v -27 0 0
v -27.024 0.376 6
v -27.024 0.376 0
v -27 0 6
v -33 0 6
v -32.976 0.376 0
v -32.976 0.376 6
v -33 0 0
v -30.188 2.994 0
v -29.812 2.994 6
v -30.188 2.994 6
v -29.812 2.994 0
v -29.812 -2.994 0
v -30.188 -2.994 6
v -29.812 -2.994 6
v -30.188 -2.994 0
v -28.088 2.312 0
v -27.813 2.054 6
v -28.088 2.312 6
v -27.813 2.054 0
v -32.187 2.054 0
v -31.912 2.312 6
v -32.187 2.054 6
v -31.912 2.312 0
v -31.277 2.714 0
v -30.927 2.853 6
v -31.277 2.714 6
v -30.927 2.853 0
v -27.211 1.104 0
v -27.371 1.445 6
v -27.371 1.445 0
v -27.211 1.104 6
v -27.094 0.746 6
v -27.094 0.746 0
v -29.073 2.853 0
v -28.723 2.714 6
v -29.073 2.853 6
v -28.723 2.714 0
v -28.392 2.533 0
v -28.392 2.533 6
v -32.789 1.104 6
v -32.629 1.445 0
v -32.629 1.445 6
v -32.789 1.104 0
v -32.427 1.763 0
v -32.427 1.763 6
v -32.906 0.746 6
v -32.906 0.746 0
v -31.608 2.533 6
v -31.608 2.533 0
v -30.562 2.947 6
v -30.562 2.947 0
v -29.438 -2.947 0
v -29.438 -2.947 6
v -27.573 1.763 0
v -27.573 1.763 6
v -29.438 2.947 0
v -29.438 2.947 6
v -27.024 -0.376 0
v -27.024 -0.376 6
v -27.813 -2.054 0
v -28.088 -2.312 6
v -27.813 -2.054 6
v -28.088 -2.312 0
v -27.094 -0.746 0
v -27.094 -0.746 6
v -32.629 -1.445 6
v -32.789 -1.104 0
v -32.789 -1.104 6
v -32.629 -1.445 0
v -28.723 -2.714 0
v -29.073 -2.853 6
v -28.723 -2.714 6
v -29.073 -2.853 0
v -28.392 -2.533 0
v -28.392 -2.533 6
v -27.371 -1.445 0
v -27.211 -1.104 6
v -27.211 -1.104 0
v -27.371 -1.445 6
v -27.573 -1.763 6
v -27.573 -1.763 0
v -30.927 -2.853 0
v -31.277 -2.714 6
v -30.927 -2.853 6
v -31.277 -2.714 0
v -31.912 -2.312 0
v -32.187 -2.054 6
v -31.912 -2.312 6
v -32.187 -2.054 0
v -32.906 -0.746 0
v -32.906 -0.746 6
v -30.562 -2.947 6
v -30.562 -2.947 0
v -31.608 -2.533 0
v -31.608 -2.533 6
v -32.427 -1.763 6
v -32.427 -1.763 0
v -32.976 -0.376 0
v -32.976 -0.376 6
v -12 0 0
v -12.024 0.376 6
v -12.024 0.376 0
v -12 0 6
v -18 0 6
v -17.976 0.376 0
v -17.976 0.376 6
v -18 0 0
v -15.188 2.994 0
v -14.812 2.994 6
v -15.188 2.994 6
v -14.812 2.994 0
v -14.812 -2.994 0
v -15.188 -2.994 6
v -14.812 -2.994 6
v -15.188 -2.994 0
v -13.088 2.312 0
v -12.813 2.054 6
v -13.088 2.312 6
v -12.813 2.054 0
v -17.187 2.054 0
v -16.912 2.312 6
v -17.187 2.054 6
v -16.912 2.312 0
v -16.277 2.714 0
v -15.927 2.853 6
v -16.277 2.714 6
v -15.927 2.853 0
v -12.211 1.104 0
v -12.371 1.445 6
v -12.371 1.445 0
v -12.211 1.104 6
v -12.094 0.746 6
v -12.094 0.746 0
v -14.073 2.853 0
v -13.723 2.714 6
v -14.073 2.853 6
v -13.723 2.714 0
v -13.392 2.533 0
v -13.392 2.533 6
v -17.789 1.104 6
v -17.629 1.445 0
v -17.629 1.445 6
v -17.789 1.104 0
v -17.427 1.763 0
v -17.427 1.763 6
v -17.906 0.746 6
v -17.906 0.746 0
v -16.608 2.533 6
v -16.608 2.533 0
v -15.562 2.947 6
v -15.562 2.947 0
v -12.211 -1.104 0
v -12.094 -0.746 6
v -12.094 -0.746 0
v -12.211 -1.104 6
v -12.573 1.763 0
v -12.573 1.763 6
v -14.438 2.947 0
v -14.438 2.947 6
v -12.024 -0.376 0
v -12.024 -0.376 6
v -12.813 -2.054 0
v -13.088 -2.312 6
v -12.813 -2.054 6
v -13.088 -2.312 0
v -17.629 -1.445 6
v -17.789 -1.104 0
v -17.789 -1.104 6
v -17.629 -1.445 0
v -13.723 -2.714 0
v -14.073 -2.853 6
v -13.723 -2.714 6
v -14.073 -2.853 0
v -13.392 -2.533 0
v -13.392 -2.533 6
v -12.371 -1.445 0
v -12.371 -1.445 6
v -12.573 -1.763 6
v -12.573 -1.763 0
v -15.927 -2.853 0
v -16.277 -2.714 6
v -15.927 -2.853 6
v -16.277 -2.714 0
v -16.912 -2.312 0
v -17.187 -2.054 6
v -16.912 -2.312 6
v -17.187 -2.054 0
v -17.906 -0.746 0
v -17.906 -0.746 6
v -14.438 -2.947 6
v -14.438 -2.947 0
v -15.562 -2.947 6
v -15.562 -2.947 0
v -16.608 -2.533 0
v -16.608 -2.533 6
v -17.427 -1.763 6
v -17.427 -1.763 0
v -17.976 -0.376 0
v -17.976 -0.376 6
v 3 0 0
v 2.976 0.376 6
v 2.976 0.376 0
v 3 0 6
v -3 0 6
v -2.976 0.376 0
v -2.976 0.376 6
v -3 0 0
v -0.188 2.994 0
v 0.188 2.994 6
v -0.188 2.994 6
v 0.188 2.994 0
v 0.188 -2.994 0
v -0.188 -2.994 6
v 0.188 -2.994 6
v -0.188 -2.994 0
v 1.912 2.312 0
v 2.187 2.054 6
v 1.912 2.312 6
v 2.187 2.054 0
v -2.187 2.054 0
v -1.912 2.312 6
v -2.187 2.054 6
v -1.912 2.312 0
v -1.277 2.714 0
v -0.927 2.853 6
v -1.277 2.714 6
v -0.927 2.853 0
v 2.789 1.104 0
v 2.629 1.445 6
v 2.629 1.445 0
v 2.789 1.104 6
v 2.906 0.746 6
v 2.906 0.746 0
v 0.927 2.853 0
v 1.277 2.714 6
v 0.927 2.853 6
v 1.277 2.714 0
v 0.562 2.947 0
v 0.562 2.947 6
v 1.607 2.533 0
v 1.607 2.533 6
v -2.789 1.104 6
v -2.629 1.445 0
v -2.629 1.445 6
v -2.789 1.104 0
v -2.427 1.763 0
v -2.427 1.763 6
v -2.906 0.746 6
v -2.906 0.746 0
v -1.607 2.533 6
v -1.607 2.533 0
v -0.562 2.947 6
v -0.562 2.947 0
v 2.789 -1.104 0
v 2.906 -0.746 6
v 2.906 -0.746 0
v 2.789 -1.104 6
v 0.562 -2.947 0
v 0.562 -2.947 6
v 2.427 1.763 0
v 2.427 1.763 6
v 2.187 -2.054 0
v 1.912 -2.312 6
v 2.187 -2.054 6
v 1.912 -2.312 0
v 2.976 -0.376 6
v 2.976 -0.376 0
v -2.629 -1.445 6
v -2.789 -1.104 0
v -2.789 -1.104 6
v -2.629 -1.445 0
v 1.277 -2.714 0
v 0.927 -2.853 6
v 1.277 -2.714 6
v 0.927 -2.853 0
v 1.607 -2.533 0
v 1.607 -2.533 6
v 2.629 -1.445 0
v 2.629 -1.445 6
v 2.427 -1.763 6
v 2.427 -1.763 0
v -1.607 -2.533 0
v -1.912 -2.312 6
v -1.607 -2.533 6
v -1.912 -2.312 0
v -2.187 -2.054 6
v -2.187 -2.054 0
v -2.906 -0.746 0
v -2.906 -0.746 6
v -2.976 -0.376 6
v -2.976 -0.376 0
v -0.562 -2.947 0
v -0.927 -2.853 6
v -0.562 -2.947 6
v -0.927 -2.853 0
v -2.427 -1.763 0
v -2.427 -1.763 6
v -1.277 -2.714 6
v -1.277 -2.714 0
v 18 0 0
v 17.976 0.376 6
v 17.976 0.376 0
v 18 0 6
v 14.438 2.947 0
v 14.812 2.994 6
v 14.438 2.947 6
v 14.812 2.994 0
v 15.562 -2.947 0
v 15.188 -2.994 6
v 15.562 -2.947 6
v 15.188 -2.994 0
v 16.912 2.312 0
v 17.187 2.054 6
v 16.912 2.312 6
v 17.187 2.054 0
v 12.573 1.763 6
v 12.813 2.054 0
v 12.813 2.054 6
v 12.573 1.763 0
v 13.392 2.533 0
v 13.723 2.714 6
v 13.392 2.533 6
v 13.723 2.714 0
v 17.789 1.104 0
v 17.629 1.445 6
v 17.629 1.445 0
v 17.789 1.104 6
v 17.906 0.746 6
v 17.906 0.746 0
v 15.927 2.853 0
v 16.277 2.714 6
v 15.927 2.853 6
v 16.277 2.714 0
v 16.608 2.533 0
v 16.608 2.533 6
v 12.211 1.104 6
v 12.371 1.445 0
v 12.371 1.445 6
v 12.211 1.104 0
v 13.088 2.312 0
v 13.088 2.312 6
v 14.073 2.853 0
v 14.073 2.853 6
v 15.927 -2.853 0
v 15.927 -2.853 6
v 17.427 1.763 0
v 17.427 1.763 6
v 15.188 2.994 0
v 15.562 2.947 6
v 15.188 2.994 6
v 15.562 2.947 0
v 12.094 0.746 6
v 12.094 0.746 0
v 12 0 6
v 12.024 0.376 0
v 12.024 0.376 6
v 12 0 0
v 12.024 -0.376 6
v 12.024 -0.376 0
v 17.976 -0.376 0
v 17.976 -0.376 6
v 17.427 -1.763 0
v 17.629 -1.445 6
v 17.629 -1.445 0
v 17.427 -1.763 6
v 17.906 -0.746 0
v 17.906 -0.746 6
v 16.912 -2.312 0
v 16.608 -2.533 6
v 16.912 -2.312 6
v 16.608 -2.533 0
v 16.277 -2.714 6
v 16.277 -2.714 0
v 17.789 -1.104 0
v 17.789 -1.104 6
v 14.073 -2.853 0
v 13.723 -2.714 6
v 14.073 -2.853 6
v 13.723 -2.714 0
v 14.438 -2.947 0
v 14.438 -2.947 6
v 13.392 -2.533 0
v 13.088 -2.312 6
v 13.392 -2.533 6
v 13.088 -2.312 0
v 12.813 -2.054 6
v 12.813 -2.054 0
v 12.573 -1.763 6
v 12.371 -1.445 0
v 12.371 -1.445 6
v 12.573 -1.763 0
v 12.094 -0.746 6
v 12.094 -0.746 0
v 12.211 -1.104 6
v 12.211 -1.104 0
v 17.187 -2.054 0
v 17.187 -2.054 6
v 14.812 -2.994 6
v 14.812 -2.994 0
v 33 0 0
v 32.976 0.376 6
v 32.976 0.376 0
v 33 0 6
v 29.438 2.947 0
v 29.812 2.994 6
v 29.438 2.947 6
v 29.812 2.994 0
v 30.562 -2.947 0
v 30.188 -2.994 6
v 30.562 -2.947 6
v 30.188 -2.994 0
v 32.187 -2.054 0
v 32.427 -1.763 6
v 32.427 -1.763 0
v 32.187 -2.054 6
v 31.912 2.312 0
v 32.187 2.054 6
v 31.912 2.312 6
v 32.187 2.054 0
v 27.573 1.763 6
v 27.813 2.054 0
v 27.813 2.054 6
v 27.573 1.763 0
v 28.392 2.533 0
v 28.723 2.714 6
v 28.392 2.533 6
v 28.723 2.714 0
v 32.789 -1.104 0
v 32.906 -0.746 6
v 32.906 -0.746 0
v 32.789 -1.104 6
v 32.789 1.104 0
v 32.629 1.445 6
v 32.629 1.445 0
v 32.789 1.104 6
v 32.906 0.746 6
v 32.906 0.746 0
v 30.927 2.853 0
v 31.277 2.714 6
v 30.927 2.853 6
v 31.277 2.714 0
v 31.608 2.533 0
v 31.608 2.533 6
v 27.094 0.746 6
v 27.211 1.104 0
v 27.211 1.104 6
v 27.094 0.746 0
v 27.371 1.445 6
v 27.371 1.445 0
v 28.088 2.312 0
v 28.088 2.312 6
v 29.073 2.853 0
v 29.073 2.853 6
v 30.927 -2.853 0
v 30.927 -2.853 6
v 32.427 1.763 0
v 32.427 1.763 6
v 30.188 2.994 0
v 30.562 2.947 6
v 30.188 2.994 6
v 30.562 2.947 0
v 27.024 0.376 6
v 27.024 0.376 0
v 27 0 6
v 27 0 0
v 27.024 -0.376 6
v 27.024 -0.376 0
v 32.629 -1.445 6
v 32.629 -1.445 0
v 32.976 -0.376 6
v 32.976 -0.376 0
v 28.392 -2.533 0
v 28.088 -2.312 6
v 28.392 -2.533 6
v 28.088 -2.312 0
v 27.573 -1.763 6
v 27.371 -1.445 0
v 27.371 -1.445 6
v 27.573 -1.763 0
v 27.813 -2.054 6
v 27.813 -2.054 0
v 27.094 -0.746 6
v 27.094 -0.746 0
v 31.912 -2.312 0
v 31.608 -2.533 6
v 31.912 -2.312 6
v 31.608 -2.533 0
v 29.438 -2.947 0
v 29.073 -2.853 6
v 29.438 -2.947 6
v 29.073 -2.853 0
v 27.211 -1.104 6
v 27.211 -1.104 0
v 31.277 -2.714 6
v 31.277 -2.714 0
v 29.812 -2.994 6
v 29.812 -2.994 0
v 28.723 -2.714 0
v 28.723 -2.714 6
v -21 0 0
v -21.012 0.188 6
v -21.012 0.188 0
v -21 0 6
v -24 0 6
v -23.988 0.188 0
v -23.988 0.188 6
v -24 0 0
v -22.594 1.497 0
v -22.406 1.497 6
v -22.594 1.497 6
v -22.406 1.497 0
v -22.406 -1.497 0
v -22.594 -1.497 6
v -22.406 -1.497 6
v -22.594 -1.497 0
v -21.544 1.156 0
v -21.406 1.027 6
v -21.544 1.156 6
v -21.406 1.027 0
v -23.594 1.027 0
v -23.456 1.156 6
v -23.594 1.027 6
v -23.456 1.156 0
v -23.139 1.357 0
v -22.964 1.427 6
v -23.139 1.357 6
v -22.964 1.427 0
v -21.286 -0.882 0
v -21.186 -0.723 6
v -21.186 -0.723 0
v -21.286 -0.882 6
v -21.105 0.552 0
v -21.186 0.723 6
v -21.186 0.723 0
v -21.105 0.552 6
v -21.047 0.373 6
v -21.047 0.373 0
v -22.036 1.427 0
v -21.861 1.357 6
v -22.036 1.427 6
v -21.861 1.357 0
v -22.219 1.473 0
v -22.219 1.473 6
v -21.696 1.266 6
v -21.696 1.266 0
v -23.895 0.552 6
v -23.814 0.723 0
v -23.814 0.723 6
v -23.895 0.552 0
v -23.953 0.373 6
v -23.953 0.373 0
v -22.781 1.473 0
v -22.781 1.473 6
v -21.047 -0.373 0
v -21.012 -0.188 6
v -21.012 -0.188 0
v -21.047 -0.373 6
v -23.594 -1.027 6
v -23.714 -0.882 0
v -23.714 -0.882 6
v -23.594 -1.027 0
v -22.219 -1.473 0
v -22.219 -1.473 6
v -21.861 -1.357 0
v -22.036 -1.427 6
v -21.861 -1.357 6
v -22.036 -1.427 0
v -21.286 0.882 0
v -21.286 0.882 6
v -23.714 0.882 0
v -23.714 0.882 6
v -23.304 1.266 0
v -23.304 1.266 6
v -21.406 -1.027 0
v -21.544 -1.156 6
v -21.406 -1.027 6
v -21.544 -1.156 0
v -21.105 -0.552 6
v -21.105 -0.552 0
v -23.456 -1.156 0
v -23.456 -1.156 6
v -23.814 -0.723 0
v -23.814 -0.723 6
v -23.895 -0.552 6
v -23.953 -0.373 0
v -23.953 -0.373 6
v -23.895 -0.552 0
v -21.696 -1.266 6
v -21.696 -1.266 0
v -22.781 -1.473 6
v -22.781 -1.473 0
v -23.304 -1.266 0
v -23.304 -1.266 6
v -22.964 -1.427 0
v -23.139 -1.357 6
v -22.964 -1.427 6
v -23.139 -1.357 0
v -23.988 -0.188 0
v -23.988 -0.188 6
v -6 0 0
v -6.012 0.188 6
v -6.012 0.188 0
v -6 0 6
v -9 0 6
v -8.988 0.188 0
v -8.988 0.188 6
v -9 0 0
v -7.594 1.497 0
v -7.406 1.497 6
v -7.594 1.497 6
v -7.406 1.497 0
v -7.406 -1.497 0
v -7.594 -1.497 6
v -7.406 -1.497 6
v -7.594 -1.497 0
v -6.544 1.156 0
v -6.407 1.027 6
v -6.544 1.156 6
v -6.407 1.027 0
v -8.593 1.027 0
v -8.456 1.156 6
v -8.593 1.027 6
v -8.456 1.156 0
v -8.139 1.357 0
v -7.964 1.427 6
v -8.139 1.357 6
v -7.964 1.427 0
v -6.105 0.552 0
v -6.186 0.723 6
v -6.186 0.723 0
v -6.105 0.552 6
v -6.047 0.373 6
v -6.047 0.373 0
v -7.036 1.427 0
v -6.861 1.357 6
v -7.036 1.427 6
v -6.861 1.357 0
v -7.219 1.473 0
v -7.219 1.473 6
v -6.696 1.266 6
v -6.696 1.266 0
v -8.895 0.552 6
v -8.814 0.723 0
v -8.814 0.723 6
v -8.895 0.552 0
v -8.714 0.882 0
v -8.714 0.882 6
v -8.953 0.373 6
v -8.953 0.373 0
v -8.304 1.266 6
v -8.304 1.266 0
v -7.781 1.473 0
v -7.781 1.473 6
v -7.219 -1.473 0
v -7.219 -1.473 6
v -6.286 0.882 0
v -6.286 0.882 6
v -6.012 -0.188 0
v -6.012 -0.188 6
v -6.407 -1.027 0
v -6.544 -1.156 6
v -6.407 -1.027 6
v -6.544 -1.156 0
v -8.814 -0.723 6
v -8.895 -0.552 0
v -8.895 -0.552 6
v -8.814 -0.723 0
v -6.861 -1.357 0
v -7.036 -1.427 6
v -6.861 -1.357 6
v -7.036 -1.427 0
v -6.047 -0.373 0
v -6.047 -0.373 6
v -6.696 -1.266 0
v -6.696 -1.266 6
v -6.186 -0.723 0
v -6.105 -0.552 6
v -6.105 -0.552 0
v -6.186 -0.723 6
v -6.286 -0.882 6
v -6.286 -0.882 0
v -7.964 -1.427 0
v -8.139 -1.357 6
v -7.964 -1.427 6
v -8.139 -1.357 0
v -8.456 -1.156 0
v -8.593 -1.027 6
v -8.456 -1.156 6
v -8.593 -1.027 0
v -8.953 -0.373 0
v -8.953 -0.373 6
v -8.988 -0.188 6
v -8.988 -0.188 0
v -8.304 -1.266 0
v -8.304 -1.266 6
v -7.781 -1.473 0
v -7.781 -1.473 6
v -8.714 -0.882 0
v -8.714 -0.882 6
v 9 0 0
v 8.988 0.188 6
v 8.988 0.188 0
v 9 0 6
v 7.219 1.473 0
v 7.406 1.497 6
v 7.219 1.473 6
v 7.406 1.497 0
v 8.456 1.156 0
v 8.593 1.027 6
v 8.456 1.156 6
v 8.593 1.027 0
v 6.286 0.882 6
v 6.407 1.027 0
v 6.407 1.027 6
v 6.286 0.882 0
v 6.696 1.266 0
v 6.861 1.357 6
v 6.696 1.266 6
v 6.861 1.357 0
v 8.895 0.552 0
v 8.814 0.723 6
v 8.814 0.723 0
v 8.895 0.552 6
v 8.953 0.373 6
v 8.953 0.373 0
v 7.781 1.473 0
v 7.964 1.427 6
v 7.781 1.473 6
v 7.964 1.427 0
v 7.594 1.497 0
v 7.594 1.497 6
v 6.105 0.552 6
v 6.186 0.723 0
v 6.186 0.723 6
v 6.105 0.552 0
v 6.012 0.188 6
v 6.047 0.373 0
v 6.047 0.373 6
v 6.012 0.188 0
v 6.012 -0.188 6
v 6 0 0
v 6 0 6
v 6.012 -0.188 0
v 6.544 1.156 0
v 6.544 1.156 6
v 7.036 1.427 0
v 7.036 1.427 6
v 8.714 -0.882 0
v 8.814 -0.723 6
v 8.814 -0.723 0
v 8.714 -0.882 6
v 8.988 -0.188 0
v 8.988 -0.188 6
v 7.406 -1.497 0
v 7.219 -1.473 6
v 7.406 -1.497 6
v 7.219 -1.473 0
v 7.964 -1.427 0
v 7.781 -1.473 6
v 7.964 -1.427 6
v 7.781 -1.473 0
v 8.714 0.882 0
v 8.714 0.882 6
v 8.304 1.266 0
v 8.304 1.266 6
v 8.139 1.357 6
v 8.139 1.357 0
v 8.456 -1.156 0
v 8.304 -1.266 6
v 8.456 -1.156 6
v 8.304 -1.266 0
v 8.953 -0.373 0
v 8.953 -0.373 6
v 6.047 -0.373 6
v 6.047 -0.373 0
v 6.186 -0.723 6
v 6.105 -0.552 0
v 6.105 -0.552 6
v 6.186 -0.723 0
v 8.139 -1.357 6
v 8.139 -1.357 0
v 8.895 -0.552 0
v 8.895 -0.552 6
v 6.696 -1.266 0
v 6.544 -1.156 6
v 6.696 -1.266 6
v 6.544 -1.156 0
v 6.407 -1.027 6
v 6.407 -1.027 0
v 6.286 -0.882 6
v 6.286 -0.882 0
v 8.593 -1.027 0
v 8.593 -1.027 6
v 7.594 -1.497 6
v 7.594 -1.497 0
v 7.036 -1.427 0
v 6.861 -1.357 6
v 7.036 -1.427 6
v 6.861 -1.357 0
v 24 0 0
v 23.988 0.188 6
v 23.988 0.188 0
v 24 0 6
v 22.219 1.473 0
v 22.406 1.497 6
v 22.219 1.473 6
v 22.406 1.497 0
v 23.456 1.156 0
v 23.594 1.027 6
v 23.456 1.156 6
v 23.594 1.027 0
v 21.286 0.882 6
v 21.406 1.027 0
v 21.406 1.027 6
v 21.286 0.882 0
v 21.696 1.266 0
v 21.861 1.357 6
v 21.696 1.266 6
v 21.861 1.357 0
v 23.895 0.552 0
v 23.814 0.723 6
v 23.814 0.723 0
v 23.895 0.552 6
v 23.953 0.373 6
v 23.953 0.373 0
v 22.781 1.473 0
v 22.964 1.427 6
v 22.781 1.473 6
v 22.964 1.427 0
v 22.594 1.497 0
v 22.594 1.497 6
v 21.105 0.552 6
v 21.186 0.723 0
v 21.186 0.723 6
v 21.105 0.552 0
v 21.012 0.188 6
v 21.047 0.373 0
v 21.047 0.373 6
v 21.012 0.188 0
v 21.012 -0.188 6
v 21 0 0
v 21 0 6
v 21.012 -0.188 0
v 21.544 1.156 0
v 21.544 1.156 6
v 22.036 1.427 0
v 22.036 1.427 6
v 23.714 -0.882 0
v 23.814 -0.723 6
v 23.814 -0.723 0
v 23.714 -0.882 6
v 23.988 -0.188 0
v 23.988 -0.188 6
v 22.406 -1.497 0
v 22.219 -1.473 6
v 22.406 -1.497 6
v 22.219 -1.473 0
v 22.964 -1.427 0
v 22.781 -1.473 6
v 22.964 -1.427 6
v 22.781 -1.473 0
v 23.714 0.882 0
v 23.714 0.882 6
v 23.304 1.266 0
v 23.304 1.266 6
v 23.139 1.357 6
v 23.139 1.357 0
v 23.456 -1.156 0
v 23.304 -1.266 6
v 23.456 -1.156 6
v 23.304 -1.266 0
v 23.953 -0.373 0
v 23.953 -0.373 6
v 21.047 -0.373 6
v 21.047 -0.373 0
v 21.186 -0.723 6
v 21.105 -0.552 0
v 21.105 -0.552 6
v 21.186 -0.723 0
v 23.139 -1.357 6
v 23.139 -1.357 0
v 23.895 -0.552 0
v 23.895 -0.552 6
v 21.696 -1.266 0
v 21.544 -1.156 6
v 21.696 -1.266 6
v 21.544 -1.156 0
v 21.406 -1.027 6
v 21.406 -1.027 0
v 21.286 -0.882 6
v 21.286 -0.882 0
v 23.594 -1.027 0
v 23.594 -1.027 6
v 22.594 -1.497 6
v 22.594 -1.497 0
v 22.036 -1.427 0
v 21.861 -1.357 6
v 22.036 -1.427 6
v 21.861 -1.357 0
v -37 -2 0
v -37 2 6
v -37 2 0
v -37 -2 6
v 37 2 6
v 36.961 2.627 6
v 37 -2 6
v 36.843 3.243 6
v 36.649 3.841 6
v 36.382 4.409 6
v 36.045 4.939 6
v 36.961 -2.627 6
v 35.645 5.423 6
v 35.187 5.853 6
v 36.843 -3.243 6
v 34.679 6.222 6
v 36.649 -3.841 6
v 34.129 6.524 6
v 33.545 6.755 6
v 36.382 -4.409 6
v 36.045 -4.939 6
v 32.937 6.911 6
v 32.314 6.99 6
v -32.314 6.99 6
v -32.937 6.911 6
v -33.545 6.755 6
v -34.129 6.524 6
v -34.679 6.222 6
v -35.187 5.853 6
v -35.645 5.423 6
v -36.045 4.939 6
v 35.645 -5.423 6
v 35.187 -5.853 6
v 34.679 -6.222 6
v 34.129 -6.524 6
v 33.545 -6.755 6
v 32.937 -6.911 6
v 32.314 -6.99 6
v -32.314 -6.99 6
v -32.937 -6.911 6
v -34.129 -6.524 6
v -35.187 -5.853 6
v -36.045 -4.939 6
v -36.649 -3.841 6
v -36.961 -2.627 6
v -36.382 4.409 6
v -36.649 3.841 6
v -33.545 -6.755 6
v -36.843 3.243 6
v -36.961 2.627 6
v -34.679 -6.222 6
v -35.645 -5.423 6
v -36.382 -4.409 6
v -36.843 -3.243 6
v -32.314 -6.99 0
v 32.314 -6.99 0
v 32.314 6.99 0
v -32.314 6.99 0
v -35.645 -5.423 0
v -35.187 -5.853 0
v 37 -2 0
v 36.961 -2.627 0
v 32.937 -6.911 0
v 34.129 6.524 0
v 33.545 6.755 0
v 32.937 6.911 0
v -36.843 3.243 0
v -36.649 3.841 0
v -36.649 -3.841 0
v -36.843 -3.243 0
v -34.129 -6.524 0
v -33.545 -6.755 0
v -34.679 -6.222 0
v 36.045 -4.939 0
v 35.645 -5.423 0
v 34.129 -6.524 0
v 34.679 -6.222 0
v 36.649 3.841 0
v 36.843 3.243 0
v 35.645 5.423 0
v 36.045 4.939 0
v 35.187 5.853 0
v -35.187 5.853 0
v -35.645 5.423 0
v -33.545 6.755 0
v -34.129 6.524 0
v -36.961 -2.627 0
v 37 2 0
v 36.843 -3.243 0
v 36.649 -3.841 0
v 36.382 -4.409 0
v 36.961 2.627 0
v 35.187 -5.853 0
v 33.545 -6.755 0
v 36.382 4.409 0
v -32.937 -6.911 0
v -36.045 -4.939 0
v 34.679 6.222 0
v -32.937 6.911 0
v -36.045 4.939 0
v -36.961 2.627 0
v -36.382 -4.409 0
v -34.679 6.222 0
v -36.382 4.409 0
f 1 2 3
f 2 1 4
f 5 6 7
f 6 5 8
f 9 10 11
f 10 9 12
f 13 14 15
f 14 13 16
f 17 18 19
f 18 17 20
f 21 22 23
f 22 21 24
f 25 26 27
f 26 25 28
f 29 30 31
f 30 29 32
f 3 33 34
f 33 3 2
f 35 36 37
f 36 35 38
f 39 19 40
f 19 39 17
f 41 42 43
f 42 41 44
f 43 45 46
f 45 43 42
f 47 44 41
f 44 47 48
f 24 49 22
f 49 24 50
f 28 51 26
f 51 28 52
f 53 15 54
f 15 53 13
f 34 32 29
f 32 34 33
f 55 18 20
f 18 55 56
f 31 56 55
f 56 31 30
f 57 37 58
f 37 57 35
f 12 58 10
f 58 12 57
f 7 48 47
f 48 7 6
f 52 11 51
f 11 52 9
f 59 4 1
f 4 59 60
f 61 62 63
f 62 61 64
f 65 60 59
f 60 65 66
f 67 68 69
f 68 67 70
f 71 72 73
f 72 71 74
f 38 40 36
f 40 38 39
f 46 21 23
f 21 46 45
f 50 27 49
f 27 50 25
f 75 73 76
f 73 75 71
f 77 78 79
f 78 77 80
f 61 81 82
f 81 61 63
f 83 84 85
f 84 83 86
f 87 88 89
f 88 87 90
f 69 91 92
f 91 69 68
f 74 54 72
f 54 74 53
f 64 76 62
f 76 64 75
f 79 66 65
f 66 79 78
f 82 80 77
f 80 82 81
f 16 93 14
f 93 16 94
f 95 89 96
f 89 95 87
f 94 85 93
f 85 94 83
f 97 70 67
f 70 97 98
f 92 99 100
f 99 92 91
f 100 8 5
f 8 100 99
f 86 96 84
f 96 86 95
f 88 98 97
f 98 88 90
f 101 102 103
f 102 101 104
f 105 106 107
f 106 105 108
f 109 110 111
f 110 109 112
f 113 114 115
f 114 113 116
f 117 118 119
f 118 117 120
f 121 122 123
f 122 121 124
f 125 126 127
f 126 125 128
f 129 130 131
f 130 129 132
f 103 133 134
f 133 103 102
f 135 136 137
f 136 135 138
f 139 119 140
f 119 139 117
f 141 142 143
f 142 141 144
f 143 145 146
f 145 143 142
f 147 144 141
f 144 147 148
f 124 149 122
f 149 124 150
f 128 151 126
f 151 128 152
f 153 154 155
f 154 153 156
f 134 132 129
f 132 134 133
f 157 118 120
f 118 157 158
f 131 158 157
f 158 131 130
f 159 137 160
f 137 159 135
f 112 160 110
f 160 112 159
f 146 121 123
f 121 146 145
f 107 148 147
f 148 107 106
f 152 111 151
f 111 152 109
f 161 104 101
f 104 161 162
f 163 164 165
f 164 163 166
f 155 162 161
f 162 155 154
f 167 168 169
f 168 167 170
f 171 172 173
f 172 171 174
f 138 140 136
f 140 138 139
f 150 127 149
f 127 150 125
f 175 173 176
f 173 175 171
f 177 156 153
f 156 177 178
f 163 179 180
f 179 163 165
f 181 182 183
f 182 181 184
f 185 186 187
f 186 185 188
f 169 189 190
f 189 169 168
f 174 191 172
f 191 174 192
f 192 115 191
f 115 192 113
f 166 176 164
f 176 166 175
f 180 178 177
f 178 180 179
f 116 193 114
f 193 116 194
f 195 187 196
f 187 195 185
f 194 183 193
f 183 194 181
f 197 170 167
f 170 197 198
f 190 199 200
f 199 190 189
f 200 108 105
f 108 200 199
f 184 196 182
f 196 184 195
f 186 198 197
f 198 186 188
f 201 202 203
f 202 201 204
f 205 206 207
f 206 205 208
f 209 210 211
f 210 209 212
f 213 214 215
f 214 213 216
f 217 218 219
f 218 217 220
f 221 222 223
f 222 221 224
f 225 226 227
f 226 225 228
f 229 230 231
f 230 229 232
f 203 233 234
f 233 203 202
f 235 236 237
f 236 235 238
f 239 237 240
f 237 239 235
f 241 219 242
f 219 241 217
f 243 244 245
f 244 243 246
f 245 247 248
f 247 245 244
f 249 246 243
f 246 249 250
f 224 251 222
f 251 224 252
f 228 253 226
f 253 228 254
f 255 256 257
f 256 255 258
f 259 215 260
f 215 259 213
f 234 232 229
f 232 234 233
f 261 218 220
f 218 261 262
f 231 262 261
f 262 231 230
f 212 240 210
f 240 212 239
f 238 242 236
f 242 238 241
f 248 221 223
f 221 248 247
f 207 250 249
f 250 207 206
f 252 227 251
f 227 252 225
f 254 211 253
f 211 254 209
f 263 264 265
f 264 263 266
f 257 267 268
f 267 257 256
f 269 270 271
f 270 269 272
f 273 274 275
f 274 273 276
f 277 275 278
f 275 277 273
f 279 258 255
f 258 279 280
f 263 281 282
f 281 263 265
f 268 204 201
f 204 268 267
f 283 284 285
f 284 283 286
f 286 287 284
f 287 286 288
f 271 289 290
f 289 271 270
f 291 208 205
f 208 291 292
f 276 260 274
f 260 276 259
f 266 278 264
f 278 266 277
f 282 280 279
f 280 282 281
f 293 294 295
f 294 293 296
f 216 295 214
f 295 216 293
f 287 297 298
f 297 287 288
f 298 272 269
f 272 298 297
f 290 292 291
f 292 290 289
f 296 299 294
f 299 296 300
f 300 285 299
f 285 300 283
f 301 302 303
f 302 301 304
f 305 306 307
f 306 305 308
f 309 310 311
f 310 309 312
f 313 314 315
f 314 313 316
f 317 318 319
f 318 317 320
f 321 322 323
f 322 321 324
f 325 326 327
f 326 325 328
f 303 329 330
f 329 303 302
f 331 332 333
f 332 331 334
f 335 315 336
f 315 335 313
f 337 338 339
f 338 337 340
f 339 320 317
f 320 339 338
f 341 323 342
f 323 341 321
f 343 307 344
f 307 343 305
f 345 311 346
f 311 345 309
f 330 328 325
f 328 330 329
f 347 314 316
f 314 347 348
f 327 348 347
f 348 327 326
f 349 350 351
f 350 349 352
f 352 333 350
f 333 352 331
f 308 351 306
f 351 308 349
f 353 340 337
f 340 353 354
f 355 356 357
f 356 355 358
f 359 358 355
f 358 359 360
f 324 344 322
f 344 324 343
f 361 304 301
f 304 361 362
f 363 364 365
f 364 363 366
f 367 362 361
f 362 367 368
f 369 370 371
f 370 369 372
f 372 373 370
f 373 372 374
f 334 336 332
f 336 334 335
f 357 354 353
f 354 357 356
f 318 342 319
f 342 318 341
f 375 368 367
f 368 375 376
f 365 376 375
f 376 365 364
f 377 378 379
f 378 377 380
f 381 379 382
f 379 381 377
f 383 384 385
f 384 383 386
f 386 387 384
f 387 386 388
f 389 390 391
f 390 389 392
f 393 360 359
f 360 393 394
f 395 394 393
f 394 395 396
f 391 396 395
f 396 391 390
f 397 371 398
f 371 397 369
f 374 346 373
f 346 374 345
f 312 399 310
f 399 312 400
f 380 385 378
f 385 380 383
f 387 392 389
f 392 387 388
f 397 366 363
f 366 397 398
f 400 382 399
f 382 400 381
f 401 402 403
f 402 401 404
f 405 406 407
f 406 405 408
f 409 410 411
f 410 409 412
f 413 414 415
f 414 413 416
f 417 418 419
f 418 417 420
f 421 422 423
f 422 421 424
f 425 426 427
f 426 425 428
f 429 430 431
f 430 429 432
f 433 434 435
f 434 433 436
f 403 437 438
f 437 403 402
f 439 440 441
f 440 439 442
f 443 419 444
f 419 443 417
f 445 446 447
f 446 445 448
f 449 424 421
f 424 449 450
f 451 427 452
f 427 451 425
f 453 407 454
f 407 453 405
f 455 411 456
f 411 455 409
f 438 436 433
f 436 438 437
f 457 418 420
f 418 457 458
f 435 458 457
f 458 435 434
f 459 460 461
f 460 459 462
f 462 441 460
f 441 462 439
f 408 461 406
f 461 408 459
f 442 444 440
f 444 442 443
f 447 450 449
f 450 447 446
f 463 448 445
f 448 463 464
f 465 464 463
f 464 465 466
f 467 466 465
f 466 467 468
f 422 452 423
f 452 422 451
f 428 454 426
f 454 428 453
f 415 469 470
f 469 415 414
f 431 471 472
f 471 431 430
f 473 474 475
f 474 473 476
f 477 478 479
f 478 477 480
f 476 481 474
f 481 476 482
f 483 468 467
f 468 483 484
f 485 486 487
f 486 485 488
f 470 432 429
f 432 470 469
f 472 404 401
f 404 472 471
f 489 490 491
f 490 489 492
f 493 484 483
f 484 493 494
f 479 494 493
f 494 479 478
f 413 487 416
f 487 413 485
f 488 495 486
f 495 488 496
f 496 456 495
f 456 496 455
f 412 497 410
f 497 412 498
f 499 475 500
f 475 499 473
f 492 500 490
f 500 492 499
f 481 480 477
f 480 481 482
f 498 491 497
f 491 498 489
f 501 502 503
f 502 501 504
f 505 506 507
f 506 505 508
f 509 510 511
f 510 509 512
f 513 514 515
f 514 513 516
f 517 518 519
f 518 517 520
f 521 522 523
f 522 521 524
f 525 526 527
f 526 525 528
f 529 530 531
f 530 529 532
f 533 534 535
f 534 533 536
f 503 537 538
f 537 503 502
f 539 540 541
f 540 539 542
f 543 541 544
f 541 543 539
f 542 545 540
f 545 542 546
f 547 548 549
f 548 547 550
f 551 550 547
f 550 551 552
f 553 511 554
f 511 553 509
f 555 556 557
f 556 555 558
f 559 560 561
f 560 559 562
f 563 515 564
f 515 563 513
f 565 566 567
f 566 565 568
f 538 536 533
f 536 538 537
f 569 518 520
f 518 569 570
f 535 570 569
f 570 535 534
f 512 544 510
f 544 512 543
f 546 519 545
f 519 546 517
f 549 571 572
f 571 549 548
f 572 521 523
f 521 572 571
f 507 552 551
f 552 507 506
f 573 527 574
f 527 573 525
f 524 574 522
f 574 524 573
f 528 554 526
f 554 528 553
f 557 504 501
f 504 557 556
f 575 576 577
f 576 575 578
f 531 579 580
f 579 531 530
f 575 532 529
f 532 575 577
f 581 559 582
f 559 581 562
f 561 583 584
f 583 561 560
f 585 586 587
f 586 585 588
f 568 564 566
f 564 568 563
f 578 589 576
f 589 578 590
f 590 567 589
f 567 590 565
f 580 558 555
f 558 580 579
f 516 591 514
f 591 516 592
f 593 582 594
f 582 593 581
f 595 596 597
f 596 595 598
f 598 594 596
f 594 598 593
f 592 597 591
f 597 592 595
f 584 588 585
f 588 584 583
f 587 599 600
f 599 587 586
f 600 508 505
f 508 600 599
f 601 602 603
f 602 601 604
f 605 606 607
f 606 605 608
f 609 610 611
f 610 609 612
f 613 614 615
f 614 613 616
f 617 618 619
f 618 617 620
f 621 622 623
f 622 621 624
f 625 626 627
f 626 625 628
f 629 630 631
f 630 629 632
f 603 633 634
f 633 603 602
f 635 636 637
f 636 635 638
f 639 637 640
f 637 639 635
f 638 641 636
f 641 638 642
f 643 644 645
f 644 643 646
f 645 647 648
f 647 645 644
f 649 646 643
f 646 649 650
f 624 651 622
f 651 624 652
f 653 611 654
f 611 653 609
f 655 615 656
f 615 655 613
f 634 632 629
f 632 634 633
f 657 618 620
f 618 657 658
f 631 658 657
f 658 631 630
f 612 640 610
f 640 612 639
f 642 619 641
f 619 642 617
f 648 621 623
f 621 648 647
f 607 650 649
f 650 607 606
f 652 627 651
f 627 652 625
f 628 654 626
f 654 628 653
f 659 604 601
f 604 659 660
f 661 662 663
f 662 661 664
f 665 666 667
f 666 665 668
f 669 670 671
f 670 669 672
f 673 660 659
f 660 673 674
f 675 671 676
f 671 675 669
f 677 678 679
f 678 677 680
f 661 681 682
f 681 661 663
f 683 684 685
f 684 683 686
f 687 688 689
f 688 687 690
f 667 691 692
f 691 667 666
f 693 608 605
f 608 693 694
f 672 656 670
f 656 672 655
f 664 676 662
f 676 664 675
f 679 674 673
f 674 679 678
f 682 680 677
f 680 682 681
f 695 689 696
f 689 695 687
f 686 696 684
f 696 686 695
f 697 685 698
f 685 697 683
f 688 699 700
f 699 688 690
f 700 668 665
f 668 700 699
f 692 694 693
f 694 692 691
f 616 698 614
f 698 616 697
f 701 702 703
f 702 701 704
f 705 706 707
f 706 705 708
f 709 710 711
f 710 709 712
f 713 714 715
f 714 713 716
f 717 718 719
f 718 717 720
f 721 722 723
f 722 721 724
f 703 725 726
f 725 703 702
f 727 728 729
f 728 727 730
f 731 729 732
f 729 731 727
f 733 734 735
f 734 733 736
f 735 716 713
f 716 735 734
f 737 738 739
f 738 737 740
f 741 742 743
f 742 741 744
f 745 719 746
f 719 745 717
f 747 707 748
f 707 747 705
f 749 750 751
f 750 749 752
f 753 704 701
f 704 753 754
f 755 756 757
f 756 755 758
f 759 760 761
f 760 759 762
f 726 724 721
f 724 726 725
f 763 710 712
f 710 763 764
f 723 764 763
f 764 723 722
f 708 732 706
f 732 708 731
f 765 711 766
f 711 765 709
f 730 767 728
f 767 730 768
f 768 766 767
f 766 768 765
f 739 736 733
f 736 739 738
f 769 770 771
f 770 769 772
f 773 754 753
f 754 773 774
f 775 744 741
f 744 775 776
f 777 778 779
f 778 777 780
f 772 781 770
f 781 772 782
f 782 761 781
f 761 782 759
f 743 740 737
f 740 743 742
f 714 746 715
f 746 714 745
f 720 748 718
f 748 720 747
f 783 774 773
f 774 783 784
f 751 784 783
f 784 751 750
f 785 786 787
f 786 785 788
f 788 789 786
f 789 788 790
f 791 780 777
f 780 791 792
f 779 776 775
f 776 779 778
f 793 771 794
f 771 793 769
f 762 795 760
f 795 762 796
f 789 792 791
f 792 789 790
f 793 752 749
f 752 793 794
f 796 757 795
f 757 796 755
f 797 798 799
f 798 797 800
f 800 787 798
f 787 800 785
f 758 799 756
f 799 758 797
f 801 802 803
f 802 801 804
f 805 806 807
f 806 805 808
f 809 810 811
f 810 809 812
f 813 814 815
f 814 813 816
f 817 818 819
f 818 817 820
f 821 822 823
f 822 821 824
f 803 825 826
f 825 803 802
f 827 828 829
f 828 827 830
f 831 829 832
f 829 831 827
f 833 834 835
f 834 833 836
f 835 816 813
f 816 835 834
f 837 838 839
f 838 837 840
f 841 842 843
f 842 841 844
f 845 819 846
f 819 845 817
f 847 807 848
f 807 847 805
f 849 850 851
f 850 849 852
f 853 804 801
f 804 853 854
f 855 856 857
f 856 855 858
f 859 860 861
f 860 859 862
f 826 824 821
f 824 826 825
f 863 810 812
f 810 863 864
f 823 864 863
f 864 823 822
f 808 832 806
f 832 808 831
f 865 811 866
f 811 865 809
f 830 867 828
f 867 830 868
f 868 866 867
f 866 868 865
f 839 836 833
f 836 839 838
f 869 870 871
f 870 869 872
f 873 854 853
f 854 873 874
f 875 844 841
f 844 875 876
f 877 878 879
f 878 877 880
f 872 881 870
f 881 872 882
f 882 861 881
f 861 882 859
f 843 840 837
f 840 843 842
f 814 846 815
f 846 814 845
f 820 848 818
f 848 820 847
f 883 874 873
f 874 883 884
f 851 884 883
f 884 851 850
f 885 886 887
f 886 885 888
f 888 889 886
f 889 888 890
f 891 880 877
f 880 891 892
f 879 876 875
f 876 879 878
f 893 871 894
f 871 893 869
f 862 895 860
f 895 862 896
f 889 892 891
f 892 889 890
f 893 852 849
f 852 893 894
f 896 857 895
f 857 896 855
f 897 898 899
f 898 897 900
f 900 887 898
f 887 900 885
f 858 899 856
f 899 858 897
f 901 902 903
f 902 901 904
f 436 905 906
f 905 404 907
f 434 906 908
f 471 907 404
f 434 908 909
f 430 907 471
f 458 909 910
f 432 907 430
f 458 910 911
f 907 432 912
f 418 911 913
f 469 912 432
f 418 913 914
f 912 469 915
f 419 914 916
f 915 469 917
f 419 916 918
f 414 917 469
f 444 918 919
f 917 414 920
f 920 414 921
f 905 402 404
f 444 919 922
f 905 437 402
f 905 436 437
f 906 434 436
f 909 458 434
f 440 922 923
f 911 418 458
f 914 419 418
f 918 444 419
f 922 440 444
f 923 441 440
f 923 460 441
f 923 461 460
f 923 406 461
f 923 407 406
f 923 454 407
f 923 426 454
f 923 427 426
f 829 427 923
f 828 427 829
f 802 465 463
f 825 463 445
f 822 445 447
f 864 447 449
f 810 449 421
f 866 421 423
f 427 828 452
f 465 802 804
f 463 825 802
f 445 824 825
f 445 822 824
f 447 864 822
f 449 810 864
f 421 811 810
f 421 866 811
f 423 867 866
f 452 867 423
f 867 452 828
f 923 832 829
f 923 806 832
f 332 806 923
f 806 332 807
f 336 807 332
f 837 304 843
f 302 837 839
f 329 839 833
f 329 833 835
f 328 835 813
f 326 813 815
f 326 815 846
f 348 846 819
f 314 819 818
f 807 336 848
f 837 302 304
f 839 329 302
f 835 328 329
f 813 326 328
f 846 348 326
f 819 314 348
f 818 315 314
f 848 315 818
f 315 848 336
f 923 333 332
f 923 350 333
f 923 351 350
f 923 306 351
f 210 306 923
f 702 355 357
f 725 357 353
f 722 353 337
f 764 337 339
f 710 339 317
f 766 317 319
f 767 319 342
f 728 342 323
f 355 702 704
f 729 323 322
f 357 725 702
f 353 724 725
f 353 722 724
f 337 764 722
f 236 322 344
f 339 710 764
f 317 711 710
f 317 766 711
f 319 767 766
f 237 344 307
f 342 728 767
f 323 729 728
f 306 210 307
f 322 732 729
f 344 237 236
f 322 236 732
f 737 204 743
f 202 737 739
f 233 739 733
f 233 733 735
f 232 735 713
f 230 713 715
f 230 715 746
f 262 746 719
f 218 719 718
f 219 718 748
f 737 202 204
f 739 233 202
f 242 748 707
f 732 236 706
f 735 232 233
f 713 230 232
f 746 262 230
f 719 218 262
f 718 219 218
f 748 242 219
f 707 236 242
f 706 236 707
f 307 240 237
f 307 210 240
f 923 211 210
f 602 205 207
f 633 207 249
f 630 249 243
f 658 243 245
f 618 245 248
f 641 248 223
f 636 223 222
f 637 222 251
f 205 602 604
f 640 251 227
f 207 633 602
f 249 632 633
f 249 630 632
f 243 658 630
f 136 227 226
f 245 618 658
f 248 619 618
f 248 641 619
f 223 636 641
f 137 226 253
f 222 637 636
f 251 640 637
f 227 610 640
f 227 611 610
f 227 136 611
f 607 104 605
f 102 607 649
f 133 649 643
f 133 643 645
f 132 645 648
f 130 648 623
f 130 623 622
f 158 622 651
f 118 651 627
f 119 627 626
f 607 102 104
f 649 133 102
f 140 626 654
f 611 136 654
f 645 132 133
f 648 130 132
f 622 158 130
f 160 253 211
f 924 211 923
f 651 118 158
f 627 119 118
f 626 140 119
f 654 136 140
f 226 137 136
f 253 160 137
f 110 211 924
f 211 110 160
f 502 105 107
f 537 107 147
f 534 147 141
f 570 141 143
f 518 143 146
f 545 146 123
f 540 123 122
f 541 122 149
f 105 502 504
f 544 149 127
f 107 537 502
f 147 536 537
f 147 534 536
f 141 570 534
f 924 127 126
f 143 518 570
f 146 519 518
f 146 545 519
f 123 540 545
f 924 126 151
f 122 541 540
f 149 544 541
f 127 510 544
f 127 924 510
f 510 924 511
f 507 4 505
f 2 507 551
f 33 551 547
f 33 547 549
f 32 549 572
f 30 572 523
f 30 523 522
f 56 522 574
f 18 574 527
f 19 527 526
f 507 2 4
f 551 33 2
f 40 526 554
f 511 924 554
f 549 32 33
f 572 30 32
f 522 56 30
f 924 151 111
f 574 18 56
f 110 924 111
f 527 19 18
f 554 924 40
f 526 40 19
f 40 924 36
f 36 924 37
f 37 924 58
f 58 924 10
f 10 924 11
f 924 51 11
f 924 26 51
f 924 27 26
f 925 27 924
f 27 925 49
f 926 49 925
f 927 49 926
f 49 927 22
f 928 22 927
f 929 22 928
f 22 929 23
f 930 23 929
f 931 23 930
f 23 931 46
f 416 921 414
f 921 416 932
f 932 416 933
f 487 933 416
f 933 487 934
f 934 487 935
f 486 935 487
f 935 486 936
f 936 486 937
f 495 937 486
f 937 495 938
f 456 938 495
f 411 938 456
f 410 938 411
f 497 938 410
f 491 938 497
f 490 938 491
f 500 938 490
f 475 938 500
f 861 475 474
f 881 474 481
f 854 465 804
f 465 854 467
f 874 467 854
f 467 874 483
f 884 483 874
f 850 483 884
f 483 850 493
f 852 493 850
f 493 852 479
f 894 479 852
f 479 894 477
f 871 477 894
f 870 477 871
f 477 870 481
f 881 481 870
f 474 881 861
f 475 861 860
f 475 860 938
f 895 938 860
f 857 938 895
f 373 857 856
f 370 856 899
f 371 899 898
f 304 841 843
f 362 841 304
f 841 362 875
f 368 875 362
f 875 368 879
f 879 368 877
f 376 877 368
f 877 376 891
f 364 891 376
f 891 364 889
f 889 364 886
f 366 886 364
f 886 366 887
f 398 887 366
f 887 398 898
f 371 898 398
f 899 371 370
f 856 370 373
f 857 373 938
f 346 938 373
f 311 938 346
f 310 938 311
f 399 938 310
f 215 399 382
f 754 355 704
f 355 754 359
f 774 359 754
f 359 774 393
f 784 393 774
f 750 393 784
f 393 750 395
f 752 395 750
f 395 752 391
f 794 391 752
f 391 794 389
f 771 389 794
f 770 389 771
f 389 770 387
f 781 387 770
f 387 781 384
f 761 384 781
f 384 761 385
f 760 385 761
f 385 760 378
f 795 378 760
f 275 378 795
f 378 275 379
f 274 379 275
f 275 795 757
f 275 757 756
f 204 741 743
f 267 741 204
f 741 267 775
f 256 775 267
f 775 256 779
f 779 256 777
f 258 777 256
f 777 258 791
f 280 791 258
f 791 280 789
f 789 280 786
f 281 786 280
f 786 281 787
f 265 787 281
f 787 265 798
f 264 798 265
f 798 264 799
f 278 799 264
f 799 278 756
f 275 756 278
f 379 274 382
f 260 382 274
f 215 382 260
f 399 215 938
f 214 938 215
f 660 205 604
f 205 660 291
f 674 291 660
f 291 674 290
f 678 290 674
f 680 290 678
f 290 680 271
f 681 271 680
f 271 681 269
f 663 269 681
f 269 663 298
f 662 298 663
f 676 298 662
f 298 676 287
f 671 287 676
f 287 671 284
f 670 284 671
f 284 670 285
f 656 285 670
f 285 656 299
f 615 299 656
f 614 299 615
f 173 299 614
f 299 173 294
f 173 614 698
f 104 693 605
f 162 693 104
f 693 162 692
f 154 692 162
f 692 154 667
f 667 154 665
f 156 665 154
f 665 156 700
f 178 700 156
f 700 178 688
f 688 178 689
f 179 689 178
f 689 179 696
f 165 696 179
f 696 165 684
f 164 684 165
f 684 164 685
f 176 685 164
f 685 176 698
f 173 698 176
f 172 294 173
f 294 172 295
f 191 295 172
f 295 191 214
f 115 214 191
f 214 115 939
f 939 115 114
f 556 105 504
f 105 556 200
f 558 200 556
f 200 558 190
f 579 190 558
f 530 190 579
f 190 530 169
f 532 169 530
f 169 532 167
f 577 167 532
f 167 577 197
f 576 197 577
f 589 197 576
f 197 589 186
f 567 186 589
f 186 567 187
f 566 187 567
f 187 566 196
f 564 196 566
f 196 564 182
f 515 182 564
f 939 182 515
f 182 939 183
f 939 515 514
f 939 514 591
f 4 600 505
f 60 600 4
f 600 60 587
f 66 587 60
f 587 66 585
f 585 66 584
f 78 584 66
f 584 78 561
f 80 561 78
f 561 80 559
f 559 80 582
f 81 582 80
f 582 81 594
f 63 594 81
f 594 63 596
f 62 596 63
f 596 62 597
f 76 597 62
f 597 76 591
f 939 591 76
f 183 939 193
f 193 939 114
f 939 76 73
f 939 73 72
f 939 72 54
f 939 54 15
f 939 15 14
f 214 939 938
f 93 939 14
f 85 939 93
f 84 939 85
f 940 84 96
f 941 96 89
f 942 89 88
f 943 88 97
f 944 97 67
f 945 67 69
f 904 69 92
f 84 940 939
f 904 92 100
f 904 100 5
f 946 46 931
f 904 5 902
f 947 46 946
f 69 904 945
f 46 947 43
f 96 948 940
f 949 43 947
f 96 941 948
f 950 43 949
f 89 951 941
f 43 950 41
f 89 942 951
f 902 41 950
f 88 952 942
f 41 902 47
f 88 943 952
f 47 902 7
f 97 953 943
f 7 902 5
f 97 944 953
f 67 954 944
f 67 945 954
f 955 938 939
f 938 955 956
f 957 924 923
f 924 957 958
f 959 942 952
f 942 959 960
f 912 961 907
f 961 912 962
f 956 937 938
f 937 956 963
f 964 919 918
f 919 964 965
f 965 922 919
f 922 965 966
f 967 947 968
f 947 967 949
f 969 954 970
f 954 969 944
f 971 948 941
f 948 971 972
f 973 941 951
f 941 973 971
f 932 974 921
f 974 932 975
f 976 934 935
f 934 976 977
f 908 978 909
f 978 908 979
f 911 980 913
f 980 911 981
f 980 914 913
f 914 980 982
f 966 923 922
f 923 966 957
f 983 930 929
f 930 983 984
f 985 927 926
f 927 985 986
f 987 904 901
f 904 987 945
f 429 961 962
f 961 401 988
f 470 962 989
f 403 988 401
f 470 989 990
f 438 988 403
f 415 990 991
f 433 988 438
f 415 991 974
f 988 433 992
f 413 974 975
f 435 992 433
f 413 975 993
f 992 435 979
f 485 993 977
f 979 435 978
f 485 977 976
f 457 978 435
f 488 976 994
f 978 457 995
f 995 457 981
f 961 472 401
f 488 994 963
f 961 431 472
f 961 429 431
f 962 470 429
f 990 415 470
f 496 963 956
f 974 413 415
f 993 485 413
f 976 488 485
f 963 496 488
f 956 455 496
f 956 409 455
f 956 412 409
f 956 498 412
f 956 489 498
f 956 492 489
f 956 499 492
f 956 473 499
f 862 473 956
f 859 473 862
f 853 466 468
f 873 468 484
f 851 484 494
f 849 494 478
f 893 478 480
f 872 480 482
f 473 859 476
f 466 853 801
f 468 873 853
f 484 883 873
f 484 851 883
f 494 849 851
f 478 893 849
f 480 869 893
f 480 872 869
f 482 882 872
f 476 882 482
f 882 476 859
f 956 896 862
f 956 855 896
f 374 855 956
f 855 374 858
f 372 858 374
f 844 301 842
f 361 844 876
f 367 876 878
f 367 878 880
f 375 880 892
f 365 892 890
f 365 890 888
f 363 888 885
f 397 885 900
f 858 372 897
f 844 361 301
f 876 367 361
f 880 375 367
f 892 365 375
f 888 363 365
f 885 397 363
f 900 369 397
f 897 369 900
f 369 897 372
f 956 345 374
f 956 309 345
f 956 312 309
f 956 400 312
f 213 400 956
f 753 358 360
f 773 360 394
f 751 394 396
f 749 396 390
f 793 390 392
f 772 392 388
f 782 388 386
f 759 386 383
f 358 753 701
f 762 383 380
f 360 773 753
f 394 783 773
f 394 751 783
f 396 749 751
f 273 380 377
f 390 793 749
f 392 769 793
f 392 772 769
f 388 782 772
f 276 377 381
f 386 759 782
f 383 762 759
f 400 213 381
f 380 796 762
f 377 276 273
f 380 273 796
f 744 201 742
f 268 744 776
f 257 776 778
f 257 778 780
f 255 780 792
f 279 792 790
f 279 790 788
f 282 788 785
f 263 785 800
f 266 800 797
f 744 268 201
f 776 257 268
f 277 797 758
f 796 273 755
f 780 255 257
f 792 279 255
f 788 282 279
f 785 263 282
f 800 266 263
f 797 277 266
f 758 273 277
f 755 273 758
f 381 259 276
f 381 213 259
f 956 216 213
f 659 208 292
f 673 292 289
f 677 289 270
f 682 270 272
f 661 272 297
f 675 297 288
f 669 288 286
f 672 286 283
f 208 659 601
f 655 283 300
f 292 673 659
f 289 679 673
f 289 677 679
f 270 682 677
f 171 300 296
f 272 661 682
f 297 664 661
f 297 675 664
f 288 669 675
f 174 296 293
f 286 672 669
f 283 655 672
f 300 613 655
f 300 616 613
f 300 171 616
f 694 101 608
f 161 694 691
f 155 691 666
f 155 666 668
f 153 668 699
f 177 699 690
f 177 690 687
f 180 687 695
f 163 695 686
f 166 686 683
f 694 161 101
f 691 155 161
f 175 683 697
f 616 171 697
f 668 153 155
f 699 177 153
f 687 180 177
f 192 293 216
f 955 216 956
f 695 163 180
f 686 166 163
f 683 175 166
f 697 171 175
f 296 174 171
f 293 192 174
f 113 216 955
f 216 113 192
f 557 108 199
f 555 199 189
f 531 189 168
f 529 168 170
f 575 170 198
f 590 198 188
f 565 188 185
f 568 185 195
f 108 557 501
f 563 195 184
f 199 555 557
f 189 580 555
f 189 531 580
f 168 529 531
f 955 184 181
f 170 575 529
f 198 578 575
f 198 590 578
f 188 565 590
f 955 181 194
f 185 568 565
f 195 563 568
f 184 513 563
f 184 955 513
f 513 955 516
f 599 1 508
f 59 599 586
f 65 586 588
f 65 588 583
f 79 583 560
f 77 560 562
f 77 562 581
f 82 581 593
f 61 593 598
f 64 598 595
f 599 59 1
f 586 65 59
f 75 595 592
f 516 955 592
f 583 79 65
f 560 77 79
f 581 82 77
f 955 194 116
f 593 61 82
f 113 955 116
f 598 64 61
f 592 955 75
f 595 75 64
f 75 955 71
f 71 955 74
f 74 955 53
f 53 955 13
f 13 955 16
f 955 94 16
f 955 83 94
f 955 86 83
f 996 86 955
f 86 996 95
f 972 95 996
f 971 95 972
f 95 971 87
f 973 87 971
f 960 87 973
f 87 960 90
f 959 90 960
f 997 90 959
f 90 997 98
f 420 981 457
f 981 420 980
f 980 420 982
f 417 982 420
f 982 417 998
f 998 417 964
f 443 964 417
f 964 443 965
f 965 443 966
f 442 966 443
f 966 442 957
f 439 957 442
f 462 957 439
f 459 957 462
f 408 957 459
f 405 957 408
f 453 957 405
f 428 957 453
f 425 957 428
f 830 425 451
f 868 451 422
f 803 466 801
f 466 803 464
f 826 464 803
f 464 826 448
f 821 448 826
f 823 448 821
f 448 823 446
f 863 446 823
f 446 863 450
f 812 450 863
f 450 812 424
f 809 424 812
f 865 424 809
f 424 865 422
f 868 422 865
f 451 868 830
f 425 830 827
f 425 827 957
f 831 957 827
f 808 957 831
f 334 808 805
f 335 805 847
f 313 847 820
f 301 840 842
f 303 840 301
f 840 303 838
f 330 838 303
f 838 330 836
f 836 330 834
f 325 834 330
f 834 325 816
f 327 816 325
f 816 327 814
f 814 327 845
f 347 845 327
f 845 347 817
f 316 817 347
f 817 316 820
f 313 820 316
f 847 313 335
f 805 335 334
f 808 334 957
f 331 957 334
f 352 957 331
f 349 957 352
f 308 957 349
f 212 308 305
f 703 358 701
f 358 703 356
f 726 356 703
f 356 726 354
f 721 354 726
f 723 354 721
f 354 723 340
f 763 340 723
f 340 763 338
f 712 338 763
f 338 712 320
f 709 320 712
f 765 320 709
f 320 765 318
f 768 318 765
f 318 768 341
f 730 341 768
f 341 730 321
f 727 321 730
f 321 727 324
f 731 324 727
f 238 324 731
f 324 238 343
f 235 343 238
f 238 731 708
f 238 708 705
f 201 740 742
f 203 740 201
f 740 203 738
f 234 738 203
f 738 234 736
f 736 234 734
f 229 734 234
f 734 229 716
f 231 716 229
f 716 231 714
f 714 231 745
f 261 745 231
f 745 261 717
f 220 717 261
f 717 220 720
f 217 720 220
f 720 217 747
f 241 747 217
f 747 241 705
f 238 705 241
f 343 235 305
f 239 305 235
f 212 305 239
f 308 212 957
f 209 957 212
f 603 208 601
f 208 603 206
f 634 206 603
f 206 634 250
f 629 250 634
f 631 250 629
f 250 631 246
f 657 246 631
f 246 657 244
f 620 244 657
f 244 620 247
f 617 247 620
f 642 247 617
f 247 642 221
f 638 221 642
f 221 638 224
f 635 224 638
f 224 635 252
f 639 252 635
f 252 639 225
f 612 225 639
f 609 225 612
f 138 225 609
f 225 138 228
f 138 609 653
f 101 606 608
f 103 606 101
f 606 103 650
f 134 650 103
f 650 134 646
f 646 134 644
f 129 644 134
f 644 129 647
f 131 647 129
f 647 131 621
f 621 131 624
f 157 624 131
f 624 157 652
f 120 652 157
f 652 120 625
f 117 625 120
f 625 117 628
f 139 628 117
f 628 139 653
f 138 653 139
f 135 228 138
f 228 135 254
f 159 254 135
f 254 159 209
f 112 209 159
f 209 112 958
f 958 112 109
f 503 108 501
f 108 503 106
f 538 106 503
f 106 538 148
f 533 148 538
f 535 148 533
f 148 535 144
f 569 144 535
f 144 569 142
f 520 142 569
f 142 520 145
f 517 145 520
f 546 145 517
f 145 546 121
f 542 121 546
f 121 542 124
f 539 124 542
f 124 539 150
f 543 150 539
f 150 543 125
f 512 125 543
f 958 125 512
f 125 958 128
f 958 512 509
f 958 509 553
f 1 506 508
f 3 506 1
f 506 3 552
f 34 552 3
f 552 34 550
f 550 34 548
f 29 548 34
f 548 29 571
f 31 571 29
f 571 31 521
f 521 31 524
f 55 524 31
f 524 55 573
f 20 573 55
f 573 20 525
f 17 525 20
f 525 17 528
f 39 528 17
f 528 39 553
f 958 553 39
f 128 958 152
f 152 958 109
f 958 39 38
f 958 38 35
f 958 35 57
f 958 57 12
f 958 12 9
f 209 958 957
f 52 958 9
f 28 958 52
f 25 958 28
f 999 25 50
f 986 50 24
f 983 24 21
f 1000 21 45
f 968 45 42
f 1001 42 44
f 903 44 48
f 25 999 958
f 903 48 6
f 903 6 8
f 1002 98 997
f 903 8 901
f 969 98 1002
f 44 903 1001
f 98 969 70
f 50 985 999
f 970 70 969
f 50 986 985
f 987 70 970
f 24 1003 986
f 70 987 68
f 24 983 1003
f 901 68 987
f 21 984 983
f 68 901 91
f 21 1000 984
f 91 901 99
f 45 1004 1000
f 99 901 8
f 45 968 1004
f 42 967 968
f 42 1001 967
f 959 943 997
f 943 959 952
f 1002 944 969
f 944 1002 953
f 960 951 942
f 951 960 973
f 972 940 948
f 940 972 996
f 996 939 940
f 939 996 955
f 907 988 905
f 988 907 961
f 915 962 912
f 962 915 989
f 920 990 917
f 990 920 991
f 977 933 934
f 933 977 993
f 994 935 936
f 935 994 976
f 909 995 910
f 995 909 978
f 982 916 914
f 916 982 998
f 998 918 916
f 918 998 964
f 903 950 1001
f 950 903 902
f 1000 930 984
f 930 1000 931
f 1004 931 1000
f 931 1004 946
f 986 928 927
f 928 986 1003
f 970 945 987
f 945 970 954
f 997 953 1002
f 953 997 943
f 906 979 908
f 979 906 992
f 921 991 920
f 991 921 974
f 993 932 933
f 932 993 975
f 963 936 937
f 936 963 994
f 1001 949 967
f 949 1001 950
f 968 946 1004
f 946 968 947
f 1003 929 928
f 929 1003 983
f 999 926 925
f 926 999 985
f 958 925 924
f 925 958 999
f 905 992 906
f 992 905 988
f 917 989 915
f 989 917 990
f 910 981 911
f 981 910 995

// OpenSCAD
$fn = 50;


difference() {
	union() {
		*color(alpha = 1.0000000000, c = "gray") {
			translate(v = [0, 7, 0]) {
				linear_extrude(height = 1) {
					text(font = "Arial:style=Bold", halign = "center", size = 4.5000000000, text = "COMMENT plate main", valign = "center");
				}
			}
		}
		hull() {
			translate(v = [-32.0000000000, 2.0000000000, 0]) {
				cylinder(h = 6, r = 5);
			}
			translate(v = [32.0000000000, 2.0000000000, 0]) {
				cylinder(h = 6, r = 5);
			}
			translate(v = [-32.0000000000, -2.0000000000, 0]) {
				cylinder(h = 6, r = 5);
			}
			translate(v = [32.0000000000, -2.0000000000, 0]) {
				cylinder(h = 6, r = 5);
			}
		}
	}
	union() {
		*color(alpha = 1.0000000000, c = "gray") {
			translate(v = [0, 7, 0]) {
				linear_extrude(height = 1) {
					text(font = "Arial:style=Bold", halign = "center", size = 4.5000000000, text = "COMMENT holes main", valign = "center");
				}
			}
		}
		translate(v = [-30.0000000000, 0.0000000000, 0]) {
			translate(v = [0, 0, -100]) {
				cylinder(h = 200, r = 3.0000000000);
			}
		}
		translate(v = [-15.0000000000, 0.0000000000, 0]) {
			translate(v = [0, 0, -100]) {
				cylinder(h = 200, r = 3.0000000000);
			}
		}
		translate(v = [0, 0, -100]) {
			cylinder(h = 200, r = 3.0000000000);
		}
		translate(v = [15.0000000000, 0.0000000000, 0]) {
			translate(v = [0, 0, -100]) {
				cylinder(h = 200, r = 3.0000000000);
			}
		}
		translate(v = [30.0000000000, 0.0000000000, 0]) {
			translate(v = [0, 0, -100]) {
				cylinder(h = 200, r = 3.0000000000);
			}
		}
		translate(v = [-30.0000000000, 0.0000000000, 0]) {
			translate(v = [0, 0, -100]) {
				cylinder(h = 200, r = 1.5000000000);
			}
		}
		translate(v = [-22.5000000000, 0.0000000000, 0]) {
			translate(v = [0, 0, -100]) {
				cylinder(h = 200, r = 1.5000000000);
			}
		}
		translate(v = [-15.0000000000, 0.0000000000, 0]) {
			translate(v = [0, 0, -100]) {
				cylinder(h = 200, r = 1.5000000000);
			}
		}
		translate(v = [-7.5000000000, 0.0000000000, 0]) {
			translate(v = [0, 0, -100]) {
				cylinder(h = 200, r = 1.5000000000);
			}
		}
		translate(v = [0, 0, -100]) {
			cylinder(h = 200, r = 1.5000000000);
		}
		translate(v = [7.5000000000, 0.0000000000, 0]) {
			translate(v = [0, 0, -100]) {
				cylinder(h = 200, r = 1.5000000000);
			}
		}
		translate(v = [15.0000000000, 0.0000000000, 0]) {
			translate(v = [0, 0, -100]) {
				cylinder(h = 200, r = 1.5000000000);
			}
		}
		translate(v = [22.5000000000, 0.0000000000, 0]) {
			translate(v = [0, 0, -100]) {
				cylinder(h = 200, r = 1.5000000000);
			}
		}
		translate(v = [30.0000000000, 0.0000000000, 0]) {
			translate(v = [0, 0, -100]) {
				cylinder(h = 200, r = 1.5000000000);
			}
		}
	}
}
